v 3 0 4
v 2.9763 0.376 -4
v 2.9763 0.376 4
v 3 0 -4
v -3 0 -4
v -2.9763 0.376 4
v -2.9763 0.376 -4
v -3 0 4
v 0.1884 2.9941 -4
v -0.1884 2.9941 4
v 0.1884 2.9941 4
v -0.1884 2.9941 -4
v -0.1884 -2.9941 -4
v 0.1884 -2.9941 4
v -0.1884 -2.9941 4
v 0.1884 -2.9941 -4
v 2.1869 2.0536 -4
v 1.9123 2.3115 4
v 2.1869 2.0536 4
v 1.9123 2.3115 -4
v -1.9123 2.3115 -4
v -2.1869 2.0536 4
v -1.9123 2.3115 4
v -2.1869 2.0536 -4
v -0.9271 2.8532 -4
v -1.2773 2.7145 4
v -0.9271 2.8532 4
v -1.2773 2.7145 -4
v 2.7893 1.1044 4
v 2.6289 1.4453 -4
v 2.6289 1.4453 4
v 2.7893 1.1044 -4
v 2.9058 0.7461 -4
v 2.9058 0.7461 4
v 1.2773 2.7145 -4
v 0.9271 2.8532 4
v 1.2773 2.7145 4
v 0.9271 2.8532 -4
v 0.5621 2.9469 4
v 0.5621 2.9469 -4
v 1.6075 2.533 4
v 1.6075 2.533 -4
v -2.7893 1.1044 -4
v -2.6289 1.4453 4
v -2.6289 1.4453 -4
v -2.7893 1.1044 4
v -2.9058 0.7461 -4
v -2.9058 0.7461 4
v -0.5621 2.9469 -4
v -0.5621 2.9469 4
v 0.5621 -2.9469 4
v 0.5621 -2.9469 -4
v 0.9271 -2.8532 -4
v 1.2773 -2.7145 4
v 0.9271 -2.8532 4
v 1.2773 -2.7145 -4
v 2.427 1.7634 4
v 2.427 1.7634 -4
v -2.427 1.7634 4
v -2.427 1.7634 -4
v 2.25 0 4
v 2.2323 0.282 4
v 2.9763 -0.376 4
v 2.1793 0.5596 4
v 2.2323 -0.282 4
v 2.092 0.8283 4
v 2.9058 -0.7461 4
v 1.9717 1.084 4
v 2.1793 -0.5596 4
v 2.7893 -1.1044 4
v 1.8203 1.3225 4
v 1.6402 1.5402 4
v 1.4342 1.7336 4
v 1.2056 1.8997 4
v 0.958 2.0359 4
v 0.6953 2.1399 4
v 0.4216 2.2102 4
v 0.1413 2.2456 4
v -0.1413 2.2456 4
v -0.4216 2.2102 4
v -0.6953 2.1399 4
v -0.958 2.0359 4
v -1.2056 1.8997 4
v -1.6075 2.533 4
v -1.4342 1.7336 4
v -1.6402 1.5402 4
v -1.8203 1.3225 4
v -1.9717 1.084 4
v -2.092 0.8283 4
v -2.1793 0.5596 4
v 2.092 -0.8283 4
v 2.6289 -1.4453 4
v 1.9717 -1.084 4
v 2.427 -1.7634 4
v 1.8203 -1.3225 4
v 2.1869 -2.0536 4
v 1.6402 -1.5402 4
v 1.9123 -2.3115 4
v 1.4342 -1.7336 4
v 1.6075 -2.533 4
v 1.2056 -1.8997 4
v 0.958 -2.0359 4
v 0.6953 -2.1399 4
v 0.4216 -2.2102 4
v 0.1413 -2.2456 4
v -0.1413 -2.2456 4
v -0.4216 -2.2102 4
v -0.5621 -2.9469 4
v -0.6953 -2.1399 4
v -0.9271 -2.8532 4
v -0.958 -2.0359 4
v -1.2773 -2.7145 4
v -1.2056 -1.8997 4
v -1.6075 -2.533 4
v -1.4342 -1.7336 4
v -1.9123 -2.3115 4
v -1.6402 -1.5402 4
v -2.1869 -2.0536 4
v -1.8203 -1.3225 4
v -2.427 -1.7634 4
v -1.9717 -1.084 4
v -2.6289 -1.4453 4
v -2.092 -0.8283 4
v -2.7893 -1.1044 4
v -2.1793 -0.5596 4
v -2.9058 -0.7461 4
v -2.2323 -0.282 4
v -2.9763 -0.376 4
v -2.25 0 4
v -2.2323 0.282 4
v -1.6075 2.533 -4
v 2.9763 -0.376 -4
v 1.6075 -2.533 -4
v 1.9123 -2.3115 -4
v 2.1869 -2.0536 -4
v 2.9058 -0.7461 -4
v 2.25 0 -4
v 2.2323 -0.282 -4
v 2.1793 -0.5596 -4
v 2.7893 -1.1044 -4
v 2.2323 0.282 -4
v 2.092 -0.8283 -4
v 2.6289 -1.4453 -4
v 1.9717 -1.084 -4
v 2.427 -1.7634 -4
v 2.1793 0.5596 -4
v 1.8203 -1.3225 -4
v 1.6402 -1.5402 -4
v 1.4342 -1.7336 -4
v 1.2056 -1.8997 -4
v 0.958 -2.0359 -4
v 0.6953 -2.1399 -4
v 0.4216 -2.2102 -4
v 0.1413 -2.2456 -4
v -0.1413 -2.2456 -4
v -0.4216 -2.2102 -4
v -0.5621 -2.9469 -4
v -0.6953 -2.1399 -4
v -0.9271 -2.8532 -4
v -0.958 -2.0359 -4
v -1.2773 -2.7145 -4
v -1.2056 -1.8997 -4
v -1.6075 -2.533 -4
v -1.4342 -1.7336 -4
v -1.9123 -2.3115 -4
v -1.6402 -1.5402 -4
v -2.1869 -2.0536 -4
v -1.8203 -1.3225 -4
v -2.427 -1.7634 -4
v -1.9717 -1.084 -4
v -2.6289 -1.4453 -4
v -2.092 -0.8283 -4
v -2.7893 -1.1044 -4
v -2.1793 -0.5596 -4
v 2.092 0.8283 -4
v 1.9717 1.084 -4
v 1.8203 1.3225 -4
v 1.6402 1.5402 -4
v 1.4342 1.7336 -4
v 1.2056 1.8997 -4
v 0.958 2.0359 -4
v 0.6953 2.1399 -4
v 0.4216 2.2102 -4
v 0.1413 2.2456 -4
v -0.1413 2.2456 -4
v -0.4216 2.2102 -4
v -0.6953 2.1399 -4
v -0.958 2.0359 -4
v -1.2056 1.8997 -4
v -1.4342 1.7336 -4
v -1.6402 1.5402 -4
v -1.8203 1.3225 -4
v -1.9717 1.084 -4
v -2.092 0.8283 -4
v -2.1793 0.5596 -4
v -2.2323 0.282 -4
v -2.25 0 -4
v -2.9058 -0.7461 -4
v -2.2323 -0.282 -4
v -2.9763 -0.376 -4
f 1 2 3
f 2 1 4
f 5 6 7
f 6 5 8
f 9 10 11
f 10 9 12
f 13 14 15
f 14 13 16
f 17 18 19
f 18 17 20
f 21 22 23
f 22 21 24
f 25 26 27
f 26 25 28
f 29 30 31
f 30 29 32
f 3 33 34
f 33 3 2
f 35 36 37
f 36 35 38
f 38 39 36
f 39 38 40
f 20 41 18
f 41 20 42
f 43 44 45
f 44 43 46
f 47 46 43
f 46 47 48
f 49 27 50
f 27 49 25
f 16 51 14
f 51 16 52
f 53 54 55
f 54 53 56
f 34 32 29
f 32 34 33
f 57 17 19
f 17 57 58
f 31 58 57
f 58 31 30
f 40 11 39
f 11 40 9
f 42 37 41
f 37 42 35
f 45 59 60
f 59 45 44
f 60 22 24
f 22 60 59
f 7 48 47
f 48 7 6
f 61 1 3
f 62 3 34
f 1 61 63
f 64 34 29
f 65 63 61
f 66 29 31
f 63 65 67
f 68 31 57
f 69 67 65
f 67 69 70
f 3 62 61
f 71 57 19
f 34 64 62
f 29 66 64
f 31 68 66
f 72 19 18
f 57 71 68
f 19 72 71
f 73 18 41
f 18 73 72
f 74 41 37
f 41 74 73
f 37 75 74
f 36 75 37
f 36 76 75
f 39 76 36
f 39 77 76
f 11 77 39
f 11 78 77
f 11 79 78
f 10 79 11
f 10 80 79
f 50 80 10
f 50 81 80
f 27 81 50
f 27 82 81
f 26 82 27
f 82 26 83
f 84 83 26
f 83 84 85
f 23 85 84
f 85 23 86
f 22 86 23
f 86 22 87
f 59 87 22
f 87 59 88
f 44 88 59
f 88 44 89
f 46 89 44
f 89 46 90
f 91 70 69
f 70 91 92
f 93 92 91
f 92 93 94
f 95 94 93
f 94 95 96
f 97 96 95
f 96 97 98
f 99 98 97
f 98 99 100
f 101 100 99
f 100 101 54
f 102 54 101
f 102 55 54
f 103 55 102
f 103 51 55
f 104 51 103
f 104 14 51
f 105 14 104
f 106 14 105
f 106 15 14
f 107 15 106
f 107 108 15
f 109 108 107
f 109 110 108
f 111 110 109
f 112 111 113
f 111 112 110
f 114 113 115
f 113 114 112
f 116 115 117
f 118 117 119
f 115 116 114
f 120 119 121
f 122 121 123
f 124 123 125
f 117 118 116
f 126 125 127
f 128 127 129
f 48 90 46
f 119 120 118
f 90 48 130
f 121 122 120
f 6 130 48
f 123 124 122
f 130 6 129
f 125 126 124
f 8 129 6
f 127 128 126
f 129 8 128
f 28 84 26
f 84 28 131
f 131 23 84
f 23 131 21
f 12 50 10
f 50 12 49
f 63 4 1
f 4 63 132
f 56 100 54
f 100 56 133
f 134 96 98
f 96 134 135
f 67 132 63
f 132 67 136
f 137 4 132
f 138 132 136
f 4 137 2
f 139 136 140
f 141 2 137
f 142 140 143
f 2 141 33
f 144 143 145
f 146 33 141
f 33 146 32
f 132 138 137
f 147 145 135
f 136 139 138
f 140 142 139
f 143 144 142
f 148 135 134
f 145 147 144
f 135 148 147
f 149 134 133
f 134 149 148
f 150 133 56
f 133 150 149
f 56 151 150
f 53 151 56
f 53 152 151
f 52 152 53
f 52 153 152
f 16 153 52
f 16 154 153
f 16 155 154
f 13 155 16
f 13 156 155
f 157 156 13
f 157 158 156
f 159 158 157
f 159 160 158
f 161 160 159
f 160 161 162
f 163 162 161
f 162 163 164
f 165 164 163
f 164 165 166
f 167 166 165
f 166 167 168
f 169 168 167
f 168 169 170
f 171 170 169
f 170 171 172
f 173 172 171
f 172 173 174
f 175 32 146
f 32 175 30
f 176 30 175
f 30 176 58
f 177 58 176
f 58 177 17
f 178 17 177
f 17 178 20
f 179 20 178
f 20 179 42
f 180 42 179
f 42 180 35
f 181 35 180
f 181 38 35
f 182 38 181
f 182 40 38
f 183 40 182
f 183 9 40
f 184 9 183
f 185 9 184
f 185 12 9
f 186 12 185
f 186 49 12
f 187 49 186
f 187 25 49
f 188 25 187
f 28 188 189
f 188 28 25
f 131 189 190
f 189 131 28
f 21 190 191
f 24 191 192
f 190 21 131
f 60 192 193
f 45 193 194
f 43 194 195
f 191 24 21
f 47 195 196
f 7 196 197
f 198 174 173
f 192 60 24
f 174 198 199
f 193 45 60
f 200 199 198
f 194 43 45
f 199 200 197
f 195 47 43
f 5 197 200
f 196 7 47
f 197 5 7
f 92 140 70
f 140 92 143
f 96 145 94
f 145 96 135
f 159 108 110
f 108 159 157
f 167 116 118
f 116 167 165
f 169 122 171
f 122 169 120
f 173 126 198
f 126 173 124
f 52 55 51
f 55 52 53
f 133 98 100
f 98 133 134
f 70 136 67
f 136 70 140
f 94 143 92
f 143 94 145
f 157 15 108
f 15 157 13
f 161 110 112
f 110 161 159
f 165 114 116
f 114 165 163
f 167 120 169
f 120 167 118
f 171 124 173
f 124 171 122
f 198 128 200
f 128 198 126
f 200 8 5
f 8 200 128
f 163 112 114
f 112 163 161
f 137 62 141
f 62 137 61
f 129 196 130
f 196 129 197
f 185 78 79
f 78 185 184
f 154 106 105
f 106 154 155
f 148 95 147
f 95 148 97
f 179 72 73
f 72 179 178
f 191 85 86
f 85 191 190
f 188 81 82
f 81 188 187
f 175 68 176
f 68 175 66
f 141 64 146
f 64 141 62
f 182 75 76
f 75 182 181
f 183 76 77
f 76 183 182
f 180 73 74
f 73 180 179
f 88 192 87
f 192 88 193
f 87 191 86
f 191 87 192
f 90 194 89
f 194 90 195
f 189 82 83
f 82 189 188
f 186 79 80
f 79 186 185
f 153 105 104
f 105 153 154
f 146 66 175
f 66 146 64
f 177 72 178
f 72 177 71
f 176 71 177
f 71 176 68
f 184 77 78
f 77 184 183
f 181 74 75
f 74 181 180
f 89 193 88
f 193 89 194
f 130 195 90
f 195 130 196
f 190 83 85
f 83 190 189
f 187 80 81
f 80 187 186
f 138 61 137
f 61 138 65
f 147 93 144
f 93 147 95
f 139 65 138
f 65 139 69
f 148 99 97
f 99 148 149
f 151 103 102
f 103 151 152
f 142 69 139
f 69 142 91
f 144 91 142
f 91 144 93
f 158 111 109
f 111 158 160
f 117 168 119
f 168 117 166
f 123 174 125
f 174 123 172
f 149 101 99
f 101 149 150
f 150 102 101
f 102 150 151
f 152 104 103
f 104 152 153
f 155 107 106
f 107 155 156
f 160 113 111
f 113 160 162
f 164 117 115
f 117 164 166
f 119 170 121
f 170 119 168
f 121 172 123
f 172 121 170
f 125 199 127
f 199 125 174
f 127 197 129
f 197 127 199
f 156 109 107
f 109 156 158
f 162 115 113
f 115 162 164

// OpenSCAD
$fn = 50;


difference() {
	union() {
		translate(v = [0, 0, -4.0000000000]) {
			cylinder(h = 8, r = 3.0000000000);
		}
	}
	union() {
		translate(v = [0, 0, -100.0000000000]) {
			cylinder(h = 200, r = 2.2500000000);
		}
	}
}
